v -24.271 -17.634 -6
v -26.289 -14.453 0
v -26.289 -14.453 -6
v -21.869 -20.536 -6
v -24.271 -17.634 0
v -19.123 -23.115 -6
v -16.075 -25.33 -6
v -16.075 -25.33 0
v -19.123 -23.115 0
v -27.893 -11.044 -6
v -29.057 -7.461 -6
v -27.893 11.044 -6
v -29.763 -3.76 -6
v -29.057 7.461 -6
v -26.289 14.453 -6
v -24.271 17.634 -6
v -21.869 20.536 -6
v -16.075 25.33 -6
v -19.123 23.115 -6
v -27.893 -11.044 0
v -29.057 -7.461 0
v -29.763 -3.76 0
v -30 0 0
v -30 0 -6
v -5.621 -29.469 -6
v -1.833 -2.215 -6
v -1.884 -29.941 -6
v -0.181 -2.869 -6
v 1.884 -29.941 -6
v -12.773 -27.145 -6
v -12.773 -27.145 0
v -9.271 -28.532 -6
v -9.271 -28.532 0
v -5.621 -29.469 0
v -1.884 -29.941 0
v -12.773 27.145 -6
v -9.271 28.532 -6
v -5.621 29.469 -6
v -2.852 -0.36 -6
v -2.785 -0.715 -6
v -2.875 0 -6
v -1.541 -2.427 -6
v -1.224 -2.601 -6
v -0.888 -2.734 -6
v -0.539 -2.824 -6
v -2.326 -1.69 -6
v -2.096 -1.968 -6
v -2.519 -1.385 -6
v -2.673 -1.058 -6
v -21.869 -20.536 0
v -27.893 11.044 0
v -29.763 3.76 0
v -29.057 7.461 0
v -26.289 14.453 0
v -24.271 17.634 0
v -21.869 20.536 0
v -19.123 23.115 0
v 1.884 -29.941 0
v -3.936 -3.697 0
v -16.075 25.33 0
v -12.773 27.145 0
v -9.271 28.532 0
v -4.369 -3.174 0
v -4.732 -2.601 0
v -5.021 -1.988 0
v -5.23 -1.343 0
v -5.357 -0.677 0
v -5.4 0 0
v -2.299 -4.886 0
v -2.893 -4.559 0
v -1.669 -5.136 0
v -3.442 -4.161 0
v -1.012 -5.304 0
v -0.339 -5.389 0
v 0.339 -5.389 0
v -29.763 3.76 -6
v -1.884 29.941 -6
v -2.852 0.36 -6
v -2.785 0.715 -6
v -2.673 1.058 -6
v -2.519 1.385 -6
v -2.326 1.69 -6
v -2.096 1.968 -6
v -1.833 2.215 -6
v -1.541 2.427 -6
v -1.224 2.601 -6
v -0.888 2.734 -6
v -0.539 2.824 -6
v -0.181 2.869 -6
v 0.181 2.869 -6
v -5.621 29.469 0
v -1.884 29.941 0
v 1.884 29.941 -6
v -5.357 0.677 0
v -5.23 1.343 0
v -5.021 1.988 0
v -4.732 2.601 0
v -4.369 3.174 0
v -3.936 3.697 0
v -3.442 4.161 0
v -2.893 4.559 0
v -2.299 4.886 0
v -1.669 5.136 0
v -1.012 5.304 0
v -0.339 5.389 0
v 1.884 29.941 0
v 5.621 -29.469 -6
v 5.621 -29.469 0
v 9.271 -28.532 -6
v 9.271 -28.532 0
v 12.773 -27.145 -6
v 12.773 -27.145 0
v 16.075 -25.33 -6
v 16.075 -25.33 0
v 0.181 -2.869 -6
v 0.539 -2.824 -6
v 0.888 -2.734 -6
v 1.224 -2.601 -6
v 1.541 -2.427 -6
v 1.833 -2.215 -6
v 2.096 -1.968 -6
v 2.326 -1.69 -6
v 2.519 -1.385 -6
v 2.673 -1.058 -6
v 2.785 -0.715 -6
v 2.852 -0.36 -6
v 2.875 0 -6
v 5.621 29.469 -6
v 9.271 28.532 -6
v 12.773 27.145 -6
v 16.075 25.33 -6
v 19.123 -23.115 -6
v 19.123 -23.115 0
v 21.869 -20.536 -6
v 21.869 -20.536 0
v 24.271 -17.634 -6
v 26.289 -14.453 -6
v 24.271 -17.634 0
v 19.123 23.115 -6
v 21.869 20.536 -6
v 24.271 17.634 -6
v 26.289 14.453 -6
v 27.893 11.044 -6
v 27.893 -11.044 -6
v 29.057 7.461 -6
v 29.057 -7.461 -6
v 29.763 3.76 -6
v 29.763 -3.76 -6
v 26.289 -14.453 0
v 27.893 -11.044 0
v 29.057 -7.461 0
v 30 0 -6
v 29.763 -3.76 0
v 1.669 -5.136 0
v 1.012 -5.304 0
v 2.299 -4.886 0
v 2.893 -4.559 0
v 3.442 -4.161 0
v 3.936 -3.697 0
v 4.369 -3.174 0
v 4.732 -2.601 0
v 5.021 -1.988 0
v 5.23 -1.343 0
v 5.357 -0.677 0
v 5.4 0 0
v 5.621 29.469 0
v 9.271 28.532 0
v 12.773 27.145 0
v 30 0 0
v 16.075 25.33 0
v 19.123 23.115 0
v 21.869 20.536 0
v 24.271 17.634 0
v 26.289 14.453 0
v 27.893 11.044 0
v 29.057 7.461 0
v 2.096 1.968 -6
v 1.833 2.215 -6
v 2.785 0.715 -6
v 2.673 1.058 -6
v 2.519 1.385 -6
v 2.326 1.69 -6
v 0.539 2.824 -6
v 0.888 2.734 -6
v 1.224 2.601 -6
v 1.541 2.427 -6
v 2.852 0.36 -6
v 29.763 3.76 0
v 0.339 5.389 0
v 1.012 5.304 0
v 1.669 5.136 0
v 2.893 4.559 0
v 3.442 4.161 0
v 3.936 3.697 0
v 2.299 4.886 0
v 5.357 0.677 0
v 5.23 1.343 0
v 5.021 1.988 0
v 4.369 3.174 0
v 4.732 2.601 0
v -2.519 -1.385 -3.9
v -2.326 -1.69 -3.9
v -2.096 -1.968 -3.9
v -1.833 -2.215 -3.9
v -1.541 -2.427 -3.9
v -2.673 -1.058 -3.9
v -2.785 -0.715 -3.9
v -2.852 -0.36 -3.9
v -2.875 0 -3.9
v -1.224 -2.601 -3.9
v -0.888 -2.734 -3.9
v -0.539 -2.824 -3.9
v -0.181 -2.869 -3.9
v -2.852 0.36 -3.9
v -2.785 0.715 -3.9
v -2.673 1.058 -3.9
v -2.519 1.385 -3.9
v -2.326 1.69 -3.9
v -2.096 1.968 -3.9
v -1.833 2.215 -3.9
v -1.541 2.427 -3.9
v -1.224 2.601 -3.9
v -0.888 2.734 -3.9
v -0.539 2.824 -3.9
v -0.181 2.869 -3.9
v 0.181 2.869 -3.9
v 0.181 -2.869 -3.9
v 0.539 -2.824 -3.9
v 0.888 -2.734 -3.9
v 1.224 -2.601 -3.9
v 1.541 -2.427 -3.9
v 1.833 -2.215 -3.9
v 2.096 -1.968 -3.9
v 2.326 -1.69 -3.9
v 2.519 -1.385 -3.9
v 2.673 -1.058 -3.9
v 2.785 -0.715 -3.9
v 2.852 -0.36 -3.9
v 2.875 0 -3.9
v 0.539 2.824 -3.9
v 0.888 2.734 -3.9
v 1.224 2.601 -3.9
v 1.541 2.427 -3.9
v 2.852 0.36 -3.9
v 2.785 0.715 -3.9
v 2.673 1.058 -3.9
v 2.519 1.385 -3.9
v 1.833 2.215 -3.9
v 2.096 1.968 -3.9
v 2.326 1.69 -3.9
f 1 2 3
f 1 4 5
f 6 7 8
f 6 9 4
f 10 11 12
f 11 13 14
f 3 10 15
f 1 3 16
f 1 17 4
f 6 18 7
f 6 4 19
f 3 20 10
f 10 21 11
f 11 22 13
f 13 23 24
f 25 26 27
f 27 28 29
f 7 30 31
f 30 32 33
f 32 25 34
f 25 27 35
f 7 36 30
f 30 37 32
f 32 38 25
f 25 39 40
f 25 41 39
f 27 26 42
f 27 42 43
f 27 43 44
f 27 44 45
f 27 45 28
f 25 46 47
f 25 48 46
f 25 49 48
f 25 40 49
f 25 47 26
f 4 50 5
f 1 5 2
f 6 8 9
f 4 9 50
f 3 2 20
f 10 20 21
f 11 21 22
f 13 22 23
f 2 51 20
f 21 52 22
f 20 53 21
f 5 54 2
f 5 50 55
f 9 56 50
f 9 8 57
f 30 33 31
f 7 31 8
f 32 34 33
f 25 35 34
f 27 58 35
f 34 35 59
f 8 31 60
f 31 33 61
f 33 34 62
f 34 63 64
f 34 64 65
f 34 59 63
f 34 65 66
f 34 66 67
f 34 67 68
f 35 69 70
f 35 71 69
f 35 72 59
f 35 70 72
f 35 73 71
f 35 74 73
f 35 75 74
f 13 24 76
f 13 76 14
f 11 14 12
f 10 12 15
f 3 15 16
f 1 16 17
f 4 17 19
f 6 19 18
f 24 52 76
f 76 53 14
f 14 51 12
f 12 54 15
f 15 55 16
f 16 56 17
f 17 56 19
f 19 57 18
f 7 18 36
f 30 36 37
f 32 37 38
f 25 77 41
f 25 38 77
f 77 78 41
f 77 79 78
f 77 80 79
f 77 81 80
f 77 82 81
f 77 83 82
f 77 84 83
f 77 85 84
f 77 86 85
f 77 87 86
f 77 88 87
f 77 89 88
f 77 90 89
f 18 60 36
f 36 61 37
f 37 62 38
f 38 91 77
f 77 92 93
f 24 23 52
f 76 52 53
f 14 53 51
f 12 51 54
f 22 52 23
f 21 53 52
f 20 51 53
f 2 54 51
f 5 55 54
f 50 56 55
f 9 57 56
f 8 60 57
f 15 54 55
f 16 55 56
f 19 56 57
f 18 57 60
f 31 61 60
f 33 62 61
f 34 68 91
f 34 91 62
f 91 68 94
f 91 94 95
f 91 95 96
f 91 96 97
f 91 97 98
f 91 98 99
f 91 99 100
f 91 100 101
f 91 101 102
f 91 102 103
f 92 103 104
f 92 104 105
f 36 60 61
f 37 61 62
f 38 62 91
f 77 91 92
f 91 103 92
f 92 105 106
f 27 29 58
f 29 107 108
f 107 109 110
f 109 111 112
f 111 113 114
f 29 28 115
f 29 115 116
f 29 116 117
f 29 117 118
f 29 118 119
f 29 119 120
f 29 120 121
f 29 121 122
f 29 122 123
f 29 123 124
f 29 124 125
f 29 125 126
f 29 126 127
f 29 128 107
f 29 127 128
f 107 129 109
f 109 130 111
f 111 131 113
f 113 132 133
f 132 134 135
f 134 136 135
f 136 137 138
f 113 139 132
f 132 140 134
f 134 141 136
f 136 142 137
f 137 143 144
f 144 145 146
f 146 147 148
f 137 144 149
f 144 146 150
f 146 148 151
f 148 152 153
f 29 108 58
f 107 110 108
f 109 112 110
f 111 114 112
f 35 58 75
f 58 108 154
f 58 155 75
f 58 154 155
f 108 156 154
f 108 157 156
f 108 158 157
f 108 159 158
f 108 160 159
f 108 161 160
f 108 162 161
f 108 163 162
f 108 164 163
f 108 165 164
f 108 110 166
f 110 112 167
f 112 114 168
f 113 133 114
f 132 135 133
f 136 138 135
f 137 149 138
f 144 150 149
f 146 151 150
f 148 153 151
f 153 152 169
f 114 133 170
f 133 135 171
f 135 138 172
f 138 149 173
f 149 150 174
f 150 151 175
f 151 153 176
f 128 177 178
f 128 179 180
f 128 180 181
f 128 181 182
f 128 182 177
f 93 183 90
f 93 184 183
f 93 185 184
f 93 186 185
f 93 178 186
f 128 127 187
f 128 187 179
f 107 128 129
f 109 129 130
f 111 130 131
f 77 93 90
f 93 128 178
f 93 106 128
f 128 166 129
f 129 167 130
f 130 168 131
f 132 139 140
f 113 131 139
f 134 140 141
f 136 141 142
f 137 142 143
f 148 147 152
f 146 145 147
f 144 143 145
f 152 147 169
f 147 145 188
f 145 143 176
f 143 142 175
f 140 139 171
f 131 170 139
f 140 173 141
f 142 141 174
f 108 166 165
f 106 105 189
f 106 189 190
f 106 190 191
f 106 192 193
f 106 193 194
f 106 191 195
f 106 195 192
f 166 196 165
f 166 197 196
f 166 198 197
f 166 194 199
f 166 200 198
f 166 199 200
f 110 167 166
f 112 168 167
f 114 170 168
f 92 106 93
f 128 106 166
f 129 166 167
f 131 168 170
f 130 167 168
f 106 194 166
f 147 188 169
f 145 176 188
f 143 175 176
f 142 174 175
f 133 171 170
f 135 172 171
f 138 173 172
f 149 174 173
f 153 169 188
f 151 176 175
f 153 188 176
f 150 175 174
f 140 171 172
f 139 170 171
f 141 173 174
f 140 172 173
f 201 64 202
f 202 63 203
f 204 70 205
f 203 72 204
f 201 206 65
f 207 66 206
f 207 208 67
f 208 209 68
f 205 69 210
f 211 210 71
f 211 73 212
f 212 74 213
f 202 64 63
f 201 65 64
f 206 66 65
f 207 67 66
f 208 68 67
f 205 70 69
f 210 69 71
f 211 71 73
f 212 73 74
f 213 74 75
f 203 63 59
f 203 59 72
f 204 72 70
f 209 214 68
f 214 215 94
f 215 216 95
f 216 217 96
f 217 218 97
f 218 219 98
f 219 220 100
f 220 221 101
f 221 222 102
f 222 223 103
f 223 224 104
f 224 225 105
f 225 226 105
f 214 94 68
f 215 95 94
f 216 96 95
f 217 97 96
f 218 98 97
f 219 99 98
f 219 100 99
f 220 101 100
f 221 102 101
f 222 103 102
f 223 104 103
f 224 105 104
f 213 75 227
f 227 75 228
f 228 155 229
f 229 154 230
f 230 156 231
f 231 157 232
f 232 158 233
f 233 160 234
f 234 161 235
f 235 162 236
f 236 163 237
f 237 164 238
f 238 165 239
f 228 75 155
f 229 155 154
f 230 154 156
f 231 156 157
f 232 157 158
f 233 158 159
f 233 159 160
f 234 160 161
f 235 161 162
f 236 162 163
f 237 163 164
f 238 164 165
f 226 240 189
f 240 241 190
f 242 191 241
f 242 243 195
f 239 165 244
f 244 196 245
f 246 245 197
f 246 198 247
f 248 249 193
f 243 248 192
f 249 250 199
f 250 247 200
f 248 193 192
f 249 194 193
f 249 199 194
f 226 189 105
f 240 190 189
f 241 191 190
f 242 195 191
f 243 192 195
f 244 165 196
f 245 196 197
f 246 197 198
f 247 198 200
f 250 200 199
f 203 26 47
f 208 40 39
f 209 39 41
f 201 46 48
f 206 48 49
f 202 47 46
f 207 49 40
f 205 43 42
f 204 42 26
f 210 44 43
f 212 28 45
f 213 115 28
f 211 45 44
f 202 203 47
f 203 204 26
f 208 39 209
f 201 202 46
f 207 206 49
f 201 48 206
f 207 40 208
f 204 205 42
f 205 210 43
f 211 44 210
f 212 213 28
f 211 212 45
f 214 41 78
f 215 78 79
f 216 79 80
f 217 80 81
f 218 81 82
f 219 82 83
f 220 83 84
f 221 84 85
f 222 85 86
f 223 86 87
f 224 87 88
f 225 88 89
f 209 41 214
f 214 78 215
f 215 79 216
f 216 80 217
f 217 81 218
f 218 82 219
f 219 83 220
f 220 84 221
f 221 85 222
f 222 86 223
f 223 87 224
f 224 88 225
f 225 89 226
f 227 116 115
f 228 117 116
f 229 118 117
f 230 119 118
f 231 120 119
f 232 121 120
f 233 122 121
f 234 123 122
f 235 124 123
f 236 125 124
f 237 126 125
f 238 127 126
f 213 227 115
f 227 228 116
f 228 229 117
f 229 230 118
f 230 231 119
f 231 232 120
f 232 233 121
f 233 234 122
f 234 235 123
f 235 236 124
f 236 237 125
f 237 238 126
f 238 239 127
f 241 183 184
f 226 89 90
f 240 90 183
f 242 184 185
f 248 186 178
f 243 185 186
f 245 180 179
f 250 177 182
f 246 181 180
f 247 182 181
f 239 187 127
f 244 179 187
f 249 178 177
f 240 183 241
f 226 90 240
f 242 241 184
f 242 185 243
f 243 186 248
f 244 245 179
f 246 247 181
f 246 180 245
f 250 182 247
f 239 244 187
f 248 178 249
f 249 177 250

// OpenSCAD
$fn = 50;

difference() {
	union() {
		translate(v = [0, 0, -6.0]) {
			cylinder(h = 6, r = 30.0);
		}
		#translate(v = [0, 0, -9.0]) {
			cylinder(h = 9, r = 2.875);
		}
	}
	union() {
		translate(v = [0, 0, 0]) {
			rotate(a = [0, 0, 0]) {
				difference() {
					union() {
						translate(v = [0, 0, -9.0]) {
							cylinder(h = 9, r = 2.6);
						}
						translate(v = [0, 0, -3.9]) {
							cylinder(h = 3.9, r1 = 2.875, r2 = 5.4);
						}
						translate(v = [0, 0, -9.0]) {
							cylinder(h = 9, r = 2.875);
						}
						translate(v = [0, 0, -9.0]) {
							cylinder(h = 9, r = 2.6);
						}
					}
					union();
				}
			}
		}
	}
}
